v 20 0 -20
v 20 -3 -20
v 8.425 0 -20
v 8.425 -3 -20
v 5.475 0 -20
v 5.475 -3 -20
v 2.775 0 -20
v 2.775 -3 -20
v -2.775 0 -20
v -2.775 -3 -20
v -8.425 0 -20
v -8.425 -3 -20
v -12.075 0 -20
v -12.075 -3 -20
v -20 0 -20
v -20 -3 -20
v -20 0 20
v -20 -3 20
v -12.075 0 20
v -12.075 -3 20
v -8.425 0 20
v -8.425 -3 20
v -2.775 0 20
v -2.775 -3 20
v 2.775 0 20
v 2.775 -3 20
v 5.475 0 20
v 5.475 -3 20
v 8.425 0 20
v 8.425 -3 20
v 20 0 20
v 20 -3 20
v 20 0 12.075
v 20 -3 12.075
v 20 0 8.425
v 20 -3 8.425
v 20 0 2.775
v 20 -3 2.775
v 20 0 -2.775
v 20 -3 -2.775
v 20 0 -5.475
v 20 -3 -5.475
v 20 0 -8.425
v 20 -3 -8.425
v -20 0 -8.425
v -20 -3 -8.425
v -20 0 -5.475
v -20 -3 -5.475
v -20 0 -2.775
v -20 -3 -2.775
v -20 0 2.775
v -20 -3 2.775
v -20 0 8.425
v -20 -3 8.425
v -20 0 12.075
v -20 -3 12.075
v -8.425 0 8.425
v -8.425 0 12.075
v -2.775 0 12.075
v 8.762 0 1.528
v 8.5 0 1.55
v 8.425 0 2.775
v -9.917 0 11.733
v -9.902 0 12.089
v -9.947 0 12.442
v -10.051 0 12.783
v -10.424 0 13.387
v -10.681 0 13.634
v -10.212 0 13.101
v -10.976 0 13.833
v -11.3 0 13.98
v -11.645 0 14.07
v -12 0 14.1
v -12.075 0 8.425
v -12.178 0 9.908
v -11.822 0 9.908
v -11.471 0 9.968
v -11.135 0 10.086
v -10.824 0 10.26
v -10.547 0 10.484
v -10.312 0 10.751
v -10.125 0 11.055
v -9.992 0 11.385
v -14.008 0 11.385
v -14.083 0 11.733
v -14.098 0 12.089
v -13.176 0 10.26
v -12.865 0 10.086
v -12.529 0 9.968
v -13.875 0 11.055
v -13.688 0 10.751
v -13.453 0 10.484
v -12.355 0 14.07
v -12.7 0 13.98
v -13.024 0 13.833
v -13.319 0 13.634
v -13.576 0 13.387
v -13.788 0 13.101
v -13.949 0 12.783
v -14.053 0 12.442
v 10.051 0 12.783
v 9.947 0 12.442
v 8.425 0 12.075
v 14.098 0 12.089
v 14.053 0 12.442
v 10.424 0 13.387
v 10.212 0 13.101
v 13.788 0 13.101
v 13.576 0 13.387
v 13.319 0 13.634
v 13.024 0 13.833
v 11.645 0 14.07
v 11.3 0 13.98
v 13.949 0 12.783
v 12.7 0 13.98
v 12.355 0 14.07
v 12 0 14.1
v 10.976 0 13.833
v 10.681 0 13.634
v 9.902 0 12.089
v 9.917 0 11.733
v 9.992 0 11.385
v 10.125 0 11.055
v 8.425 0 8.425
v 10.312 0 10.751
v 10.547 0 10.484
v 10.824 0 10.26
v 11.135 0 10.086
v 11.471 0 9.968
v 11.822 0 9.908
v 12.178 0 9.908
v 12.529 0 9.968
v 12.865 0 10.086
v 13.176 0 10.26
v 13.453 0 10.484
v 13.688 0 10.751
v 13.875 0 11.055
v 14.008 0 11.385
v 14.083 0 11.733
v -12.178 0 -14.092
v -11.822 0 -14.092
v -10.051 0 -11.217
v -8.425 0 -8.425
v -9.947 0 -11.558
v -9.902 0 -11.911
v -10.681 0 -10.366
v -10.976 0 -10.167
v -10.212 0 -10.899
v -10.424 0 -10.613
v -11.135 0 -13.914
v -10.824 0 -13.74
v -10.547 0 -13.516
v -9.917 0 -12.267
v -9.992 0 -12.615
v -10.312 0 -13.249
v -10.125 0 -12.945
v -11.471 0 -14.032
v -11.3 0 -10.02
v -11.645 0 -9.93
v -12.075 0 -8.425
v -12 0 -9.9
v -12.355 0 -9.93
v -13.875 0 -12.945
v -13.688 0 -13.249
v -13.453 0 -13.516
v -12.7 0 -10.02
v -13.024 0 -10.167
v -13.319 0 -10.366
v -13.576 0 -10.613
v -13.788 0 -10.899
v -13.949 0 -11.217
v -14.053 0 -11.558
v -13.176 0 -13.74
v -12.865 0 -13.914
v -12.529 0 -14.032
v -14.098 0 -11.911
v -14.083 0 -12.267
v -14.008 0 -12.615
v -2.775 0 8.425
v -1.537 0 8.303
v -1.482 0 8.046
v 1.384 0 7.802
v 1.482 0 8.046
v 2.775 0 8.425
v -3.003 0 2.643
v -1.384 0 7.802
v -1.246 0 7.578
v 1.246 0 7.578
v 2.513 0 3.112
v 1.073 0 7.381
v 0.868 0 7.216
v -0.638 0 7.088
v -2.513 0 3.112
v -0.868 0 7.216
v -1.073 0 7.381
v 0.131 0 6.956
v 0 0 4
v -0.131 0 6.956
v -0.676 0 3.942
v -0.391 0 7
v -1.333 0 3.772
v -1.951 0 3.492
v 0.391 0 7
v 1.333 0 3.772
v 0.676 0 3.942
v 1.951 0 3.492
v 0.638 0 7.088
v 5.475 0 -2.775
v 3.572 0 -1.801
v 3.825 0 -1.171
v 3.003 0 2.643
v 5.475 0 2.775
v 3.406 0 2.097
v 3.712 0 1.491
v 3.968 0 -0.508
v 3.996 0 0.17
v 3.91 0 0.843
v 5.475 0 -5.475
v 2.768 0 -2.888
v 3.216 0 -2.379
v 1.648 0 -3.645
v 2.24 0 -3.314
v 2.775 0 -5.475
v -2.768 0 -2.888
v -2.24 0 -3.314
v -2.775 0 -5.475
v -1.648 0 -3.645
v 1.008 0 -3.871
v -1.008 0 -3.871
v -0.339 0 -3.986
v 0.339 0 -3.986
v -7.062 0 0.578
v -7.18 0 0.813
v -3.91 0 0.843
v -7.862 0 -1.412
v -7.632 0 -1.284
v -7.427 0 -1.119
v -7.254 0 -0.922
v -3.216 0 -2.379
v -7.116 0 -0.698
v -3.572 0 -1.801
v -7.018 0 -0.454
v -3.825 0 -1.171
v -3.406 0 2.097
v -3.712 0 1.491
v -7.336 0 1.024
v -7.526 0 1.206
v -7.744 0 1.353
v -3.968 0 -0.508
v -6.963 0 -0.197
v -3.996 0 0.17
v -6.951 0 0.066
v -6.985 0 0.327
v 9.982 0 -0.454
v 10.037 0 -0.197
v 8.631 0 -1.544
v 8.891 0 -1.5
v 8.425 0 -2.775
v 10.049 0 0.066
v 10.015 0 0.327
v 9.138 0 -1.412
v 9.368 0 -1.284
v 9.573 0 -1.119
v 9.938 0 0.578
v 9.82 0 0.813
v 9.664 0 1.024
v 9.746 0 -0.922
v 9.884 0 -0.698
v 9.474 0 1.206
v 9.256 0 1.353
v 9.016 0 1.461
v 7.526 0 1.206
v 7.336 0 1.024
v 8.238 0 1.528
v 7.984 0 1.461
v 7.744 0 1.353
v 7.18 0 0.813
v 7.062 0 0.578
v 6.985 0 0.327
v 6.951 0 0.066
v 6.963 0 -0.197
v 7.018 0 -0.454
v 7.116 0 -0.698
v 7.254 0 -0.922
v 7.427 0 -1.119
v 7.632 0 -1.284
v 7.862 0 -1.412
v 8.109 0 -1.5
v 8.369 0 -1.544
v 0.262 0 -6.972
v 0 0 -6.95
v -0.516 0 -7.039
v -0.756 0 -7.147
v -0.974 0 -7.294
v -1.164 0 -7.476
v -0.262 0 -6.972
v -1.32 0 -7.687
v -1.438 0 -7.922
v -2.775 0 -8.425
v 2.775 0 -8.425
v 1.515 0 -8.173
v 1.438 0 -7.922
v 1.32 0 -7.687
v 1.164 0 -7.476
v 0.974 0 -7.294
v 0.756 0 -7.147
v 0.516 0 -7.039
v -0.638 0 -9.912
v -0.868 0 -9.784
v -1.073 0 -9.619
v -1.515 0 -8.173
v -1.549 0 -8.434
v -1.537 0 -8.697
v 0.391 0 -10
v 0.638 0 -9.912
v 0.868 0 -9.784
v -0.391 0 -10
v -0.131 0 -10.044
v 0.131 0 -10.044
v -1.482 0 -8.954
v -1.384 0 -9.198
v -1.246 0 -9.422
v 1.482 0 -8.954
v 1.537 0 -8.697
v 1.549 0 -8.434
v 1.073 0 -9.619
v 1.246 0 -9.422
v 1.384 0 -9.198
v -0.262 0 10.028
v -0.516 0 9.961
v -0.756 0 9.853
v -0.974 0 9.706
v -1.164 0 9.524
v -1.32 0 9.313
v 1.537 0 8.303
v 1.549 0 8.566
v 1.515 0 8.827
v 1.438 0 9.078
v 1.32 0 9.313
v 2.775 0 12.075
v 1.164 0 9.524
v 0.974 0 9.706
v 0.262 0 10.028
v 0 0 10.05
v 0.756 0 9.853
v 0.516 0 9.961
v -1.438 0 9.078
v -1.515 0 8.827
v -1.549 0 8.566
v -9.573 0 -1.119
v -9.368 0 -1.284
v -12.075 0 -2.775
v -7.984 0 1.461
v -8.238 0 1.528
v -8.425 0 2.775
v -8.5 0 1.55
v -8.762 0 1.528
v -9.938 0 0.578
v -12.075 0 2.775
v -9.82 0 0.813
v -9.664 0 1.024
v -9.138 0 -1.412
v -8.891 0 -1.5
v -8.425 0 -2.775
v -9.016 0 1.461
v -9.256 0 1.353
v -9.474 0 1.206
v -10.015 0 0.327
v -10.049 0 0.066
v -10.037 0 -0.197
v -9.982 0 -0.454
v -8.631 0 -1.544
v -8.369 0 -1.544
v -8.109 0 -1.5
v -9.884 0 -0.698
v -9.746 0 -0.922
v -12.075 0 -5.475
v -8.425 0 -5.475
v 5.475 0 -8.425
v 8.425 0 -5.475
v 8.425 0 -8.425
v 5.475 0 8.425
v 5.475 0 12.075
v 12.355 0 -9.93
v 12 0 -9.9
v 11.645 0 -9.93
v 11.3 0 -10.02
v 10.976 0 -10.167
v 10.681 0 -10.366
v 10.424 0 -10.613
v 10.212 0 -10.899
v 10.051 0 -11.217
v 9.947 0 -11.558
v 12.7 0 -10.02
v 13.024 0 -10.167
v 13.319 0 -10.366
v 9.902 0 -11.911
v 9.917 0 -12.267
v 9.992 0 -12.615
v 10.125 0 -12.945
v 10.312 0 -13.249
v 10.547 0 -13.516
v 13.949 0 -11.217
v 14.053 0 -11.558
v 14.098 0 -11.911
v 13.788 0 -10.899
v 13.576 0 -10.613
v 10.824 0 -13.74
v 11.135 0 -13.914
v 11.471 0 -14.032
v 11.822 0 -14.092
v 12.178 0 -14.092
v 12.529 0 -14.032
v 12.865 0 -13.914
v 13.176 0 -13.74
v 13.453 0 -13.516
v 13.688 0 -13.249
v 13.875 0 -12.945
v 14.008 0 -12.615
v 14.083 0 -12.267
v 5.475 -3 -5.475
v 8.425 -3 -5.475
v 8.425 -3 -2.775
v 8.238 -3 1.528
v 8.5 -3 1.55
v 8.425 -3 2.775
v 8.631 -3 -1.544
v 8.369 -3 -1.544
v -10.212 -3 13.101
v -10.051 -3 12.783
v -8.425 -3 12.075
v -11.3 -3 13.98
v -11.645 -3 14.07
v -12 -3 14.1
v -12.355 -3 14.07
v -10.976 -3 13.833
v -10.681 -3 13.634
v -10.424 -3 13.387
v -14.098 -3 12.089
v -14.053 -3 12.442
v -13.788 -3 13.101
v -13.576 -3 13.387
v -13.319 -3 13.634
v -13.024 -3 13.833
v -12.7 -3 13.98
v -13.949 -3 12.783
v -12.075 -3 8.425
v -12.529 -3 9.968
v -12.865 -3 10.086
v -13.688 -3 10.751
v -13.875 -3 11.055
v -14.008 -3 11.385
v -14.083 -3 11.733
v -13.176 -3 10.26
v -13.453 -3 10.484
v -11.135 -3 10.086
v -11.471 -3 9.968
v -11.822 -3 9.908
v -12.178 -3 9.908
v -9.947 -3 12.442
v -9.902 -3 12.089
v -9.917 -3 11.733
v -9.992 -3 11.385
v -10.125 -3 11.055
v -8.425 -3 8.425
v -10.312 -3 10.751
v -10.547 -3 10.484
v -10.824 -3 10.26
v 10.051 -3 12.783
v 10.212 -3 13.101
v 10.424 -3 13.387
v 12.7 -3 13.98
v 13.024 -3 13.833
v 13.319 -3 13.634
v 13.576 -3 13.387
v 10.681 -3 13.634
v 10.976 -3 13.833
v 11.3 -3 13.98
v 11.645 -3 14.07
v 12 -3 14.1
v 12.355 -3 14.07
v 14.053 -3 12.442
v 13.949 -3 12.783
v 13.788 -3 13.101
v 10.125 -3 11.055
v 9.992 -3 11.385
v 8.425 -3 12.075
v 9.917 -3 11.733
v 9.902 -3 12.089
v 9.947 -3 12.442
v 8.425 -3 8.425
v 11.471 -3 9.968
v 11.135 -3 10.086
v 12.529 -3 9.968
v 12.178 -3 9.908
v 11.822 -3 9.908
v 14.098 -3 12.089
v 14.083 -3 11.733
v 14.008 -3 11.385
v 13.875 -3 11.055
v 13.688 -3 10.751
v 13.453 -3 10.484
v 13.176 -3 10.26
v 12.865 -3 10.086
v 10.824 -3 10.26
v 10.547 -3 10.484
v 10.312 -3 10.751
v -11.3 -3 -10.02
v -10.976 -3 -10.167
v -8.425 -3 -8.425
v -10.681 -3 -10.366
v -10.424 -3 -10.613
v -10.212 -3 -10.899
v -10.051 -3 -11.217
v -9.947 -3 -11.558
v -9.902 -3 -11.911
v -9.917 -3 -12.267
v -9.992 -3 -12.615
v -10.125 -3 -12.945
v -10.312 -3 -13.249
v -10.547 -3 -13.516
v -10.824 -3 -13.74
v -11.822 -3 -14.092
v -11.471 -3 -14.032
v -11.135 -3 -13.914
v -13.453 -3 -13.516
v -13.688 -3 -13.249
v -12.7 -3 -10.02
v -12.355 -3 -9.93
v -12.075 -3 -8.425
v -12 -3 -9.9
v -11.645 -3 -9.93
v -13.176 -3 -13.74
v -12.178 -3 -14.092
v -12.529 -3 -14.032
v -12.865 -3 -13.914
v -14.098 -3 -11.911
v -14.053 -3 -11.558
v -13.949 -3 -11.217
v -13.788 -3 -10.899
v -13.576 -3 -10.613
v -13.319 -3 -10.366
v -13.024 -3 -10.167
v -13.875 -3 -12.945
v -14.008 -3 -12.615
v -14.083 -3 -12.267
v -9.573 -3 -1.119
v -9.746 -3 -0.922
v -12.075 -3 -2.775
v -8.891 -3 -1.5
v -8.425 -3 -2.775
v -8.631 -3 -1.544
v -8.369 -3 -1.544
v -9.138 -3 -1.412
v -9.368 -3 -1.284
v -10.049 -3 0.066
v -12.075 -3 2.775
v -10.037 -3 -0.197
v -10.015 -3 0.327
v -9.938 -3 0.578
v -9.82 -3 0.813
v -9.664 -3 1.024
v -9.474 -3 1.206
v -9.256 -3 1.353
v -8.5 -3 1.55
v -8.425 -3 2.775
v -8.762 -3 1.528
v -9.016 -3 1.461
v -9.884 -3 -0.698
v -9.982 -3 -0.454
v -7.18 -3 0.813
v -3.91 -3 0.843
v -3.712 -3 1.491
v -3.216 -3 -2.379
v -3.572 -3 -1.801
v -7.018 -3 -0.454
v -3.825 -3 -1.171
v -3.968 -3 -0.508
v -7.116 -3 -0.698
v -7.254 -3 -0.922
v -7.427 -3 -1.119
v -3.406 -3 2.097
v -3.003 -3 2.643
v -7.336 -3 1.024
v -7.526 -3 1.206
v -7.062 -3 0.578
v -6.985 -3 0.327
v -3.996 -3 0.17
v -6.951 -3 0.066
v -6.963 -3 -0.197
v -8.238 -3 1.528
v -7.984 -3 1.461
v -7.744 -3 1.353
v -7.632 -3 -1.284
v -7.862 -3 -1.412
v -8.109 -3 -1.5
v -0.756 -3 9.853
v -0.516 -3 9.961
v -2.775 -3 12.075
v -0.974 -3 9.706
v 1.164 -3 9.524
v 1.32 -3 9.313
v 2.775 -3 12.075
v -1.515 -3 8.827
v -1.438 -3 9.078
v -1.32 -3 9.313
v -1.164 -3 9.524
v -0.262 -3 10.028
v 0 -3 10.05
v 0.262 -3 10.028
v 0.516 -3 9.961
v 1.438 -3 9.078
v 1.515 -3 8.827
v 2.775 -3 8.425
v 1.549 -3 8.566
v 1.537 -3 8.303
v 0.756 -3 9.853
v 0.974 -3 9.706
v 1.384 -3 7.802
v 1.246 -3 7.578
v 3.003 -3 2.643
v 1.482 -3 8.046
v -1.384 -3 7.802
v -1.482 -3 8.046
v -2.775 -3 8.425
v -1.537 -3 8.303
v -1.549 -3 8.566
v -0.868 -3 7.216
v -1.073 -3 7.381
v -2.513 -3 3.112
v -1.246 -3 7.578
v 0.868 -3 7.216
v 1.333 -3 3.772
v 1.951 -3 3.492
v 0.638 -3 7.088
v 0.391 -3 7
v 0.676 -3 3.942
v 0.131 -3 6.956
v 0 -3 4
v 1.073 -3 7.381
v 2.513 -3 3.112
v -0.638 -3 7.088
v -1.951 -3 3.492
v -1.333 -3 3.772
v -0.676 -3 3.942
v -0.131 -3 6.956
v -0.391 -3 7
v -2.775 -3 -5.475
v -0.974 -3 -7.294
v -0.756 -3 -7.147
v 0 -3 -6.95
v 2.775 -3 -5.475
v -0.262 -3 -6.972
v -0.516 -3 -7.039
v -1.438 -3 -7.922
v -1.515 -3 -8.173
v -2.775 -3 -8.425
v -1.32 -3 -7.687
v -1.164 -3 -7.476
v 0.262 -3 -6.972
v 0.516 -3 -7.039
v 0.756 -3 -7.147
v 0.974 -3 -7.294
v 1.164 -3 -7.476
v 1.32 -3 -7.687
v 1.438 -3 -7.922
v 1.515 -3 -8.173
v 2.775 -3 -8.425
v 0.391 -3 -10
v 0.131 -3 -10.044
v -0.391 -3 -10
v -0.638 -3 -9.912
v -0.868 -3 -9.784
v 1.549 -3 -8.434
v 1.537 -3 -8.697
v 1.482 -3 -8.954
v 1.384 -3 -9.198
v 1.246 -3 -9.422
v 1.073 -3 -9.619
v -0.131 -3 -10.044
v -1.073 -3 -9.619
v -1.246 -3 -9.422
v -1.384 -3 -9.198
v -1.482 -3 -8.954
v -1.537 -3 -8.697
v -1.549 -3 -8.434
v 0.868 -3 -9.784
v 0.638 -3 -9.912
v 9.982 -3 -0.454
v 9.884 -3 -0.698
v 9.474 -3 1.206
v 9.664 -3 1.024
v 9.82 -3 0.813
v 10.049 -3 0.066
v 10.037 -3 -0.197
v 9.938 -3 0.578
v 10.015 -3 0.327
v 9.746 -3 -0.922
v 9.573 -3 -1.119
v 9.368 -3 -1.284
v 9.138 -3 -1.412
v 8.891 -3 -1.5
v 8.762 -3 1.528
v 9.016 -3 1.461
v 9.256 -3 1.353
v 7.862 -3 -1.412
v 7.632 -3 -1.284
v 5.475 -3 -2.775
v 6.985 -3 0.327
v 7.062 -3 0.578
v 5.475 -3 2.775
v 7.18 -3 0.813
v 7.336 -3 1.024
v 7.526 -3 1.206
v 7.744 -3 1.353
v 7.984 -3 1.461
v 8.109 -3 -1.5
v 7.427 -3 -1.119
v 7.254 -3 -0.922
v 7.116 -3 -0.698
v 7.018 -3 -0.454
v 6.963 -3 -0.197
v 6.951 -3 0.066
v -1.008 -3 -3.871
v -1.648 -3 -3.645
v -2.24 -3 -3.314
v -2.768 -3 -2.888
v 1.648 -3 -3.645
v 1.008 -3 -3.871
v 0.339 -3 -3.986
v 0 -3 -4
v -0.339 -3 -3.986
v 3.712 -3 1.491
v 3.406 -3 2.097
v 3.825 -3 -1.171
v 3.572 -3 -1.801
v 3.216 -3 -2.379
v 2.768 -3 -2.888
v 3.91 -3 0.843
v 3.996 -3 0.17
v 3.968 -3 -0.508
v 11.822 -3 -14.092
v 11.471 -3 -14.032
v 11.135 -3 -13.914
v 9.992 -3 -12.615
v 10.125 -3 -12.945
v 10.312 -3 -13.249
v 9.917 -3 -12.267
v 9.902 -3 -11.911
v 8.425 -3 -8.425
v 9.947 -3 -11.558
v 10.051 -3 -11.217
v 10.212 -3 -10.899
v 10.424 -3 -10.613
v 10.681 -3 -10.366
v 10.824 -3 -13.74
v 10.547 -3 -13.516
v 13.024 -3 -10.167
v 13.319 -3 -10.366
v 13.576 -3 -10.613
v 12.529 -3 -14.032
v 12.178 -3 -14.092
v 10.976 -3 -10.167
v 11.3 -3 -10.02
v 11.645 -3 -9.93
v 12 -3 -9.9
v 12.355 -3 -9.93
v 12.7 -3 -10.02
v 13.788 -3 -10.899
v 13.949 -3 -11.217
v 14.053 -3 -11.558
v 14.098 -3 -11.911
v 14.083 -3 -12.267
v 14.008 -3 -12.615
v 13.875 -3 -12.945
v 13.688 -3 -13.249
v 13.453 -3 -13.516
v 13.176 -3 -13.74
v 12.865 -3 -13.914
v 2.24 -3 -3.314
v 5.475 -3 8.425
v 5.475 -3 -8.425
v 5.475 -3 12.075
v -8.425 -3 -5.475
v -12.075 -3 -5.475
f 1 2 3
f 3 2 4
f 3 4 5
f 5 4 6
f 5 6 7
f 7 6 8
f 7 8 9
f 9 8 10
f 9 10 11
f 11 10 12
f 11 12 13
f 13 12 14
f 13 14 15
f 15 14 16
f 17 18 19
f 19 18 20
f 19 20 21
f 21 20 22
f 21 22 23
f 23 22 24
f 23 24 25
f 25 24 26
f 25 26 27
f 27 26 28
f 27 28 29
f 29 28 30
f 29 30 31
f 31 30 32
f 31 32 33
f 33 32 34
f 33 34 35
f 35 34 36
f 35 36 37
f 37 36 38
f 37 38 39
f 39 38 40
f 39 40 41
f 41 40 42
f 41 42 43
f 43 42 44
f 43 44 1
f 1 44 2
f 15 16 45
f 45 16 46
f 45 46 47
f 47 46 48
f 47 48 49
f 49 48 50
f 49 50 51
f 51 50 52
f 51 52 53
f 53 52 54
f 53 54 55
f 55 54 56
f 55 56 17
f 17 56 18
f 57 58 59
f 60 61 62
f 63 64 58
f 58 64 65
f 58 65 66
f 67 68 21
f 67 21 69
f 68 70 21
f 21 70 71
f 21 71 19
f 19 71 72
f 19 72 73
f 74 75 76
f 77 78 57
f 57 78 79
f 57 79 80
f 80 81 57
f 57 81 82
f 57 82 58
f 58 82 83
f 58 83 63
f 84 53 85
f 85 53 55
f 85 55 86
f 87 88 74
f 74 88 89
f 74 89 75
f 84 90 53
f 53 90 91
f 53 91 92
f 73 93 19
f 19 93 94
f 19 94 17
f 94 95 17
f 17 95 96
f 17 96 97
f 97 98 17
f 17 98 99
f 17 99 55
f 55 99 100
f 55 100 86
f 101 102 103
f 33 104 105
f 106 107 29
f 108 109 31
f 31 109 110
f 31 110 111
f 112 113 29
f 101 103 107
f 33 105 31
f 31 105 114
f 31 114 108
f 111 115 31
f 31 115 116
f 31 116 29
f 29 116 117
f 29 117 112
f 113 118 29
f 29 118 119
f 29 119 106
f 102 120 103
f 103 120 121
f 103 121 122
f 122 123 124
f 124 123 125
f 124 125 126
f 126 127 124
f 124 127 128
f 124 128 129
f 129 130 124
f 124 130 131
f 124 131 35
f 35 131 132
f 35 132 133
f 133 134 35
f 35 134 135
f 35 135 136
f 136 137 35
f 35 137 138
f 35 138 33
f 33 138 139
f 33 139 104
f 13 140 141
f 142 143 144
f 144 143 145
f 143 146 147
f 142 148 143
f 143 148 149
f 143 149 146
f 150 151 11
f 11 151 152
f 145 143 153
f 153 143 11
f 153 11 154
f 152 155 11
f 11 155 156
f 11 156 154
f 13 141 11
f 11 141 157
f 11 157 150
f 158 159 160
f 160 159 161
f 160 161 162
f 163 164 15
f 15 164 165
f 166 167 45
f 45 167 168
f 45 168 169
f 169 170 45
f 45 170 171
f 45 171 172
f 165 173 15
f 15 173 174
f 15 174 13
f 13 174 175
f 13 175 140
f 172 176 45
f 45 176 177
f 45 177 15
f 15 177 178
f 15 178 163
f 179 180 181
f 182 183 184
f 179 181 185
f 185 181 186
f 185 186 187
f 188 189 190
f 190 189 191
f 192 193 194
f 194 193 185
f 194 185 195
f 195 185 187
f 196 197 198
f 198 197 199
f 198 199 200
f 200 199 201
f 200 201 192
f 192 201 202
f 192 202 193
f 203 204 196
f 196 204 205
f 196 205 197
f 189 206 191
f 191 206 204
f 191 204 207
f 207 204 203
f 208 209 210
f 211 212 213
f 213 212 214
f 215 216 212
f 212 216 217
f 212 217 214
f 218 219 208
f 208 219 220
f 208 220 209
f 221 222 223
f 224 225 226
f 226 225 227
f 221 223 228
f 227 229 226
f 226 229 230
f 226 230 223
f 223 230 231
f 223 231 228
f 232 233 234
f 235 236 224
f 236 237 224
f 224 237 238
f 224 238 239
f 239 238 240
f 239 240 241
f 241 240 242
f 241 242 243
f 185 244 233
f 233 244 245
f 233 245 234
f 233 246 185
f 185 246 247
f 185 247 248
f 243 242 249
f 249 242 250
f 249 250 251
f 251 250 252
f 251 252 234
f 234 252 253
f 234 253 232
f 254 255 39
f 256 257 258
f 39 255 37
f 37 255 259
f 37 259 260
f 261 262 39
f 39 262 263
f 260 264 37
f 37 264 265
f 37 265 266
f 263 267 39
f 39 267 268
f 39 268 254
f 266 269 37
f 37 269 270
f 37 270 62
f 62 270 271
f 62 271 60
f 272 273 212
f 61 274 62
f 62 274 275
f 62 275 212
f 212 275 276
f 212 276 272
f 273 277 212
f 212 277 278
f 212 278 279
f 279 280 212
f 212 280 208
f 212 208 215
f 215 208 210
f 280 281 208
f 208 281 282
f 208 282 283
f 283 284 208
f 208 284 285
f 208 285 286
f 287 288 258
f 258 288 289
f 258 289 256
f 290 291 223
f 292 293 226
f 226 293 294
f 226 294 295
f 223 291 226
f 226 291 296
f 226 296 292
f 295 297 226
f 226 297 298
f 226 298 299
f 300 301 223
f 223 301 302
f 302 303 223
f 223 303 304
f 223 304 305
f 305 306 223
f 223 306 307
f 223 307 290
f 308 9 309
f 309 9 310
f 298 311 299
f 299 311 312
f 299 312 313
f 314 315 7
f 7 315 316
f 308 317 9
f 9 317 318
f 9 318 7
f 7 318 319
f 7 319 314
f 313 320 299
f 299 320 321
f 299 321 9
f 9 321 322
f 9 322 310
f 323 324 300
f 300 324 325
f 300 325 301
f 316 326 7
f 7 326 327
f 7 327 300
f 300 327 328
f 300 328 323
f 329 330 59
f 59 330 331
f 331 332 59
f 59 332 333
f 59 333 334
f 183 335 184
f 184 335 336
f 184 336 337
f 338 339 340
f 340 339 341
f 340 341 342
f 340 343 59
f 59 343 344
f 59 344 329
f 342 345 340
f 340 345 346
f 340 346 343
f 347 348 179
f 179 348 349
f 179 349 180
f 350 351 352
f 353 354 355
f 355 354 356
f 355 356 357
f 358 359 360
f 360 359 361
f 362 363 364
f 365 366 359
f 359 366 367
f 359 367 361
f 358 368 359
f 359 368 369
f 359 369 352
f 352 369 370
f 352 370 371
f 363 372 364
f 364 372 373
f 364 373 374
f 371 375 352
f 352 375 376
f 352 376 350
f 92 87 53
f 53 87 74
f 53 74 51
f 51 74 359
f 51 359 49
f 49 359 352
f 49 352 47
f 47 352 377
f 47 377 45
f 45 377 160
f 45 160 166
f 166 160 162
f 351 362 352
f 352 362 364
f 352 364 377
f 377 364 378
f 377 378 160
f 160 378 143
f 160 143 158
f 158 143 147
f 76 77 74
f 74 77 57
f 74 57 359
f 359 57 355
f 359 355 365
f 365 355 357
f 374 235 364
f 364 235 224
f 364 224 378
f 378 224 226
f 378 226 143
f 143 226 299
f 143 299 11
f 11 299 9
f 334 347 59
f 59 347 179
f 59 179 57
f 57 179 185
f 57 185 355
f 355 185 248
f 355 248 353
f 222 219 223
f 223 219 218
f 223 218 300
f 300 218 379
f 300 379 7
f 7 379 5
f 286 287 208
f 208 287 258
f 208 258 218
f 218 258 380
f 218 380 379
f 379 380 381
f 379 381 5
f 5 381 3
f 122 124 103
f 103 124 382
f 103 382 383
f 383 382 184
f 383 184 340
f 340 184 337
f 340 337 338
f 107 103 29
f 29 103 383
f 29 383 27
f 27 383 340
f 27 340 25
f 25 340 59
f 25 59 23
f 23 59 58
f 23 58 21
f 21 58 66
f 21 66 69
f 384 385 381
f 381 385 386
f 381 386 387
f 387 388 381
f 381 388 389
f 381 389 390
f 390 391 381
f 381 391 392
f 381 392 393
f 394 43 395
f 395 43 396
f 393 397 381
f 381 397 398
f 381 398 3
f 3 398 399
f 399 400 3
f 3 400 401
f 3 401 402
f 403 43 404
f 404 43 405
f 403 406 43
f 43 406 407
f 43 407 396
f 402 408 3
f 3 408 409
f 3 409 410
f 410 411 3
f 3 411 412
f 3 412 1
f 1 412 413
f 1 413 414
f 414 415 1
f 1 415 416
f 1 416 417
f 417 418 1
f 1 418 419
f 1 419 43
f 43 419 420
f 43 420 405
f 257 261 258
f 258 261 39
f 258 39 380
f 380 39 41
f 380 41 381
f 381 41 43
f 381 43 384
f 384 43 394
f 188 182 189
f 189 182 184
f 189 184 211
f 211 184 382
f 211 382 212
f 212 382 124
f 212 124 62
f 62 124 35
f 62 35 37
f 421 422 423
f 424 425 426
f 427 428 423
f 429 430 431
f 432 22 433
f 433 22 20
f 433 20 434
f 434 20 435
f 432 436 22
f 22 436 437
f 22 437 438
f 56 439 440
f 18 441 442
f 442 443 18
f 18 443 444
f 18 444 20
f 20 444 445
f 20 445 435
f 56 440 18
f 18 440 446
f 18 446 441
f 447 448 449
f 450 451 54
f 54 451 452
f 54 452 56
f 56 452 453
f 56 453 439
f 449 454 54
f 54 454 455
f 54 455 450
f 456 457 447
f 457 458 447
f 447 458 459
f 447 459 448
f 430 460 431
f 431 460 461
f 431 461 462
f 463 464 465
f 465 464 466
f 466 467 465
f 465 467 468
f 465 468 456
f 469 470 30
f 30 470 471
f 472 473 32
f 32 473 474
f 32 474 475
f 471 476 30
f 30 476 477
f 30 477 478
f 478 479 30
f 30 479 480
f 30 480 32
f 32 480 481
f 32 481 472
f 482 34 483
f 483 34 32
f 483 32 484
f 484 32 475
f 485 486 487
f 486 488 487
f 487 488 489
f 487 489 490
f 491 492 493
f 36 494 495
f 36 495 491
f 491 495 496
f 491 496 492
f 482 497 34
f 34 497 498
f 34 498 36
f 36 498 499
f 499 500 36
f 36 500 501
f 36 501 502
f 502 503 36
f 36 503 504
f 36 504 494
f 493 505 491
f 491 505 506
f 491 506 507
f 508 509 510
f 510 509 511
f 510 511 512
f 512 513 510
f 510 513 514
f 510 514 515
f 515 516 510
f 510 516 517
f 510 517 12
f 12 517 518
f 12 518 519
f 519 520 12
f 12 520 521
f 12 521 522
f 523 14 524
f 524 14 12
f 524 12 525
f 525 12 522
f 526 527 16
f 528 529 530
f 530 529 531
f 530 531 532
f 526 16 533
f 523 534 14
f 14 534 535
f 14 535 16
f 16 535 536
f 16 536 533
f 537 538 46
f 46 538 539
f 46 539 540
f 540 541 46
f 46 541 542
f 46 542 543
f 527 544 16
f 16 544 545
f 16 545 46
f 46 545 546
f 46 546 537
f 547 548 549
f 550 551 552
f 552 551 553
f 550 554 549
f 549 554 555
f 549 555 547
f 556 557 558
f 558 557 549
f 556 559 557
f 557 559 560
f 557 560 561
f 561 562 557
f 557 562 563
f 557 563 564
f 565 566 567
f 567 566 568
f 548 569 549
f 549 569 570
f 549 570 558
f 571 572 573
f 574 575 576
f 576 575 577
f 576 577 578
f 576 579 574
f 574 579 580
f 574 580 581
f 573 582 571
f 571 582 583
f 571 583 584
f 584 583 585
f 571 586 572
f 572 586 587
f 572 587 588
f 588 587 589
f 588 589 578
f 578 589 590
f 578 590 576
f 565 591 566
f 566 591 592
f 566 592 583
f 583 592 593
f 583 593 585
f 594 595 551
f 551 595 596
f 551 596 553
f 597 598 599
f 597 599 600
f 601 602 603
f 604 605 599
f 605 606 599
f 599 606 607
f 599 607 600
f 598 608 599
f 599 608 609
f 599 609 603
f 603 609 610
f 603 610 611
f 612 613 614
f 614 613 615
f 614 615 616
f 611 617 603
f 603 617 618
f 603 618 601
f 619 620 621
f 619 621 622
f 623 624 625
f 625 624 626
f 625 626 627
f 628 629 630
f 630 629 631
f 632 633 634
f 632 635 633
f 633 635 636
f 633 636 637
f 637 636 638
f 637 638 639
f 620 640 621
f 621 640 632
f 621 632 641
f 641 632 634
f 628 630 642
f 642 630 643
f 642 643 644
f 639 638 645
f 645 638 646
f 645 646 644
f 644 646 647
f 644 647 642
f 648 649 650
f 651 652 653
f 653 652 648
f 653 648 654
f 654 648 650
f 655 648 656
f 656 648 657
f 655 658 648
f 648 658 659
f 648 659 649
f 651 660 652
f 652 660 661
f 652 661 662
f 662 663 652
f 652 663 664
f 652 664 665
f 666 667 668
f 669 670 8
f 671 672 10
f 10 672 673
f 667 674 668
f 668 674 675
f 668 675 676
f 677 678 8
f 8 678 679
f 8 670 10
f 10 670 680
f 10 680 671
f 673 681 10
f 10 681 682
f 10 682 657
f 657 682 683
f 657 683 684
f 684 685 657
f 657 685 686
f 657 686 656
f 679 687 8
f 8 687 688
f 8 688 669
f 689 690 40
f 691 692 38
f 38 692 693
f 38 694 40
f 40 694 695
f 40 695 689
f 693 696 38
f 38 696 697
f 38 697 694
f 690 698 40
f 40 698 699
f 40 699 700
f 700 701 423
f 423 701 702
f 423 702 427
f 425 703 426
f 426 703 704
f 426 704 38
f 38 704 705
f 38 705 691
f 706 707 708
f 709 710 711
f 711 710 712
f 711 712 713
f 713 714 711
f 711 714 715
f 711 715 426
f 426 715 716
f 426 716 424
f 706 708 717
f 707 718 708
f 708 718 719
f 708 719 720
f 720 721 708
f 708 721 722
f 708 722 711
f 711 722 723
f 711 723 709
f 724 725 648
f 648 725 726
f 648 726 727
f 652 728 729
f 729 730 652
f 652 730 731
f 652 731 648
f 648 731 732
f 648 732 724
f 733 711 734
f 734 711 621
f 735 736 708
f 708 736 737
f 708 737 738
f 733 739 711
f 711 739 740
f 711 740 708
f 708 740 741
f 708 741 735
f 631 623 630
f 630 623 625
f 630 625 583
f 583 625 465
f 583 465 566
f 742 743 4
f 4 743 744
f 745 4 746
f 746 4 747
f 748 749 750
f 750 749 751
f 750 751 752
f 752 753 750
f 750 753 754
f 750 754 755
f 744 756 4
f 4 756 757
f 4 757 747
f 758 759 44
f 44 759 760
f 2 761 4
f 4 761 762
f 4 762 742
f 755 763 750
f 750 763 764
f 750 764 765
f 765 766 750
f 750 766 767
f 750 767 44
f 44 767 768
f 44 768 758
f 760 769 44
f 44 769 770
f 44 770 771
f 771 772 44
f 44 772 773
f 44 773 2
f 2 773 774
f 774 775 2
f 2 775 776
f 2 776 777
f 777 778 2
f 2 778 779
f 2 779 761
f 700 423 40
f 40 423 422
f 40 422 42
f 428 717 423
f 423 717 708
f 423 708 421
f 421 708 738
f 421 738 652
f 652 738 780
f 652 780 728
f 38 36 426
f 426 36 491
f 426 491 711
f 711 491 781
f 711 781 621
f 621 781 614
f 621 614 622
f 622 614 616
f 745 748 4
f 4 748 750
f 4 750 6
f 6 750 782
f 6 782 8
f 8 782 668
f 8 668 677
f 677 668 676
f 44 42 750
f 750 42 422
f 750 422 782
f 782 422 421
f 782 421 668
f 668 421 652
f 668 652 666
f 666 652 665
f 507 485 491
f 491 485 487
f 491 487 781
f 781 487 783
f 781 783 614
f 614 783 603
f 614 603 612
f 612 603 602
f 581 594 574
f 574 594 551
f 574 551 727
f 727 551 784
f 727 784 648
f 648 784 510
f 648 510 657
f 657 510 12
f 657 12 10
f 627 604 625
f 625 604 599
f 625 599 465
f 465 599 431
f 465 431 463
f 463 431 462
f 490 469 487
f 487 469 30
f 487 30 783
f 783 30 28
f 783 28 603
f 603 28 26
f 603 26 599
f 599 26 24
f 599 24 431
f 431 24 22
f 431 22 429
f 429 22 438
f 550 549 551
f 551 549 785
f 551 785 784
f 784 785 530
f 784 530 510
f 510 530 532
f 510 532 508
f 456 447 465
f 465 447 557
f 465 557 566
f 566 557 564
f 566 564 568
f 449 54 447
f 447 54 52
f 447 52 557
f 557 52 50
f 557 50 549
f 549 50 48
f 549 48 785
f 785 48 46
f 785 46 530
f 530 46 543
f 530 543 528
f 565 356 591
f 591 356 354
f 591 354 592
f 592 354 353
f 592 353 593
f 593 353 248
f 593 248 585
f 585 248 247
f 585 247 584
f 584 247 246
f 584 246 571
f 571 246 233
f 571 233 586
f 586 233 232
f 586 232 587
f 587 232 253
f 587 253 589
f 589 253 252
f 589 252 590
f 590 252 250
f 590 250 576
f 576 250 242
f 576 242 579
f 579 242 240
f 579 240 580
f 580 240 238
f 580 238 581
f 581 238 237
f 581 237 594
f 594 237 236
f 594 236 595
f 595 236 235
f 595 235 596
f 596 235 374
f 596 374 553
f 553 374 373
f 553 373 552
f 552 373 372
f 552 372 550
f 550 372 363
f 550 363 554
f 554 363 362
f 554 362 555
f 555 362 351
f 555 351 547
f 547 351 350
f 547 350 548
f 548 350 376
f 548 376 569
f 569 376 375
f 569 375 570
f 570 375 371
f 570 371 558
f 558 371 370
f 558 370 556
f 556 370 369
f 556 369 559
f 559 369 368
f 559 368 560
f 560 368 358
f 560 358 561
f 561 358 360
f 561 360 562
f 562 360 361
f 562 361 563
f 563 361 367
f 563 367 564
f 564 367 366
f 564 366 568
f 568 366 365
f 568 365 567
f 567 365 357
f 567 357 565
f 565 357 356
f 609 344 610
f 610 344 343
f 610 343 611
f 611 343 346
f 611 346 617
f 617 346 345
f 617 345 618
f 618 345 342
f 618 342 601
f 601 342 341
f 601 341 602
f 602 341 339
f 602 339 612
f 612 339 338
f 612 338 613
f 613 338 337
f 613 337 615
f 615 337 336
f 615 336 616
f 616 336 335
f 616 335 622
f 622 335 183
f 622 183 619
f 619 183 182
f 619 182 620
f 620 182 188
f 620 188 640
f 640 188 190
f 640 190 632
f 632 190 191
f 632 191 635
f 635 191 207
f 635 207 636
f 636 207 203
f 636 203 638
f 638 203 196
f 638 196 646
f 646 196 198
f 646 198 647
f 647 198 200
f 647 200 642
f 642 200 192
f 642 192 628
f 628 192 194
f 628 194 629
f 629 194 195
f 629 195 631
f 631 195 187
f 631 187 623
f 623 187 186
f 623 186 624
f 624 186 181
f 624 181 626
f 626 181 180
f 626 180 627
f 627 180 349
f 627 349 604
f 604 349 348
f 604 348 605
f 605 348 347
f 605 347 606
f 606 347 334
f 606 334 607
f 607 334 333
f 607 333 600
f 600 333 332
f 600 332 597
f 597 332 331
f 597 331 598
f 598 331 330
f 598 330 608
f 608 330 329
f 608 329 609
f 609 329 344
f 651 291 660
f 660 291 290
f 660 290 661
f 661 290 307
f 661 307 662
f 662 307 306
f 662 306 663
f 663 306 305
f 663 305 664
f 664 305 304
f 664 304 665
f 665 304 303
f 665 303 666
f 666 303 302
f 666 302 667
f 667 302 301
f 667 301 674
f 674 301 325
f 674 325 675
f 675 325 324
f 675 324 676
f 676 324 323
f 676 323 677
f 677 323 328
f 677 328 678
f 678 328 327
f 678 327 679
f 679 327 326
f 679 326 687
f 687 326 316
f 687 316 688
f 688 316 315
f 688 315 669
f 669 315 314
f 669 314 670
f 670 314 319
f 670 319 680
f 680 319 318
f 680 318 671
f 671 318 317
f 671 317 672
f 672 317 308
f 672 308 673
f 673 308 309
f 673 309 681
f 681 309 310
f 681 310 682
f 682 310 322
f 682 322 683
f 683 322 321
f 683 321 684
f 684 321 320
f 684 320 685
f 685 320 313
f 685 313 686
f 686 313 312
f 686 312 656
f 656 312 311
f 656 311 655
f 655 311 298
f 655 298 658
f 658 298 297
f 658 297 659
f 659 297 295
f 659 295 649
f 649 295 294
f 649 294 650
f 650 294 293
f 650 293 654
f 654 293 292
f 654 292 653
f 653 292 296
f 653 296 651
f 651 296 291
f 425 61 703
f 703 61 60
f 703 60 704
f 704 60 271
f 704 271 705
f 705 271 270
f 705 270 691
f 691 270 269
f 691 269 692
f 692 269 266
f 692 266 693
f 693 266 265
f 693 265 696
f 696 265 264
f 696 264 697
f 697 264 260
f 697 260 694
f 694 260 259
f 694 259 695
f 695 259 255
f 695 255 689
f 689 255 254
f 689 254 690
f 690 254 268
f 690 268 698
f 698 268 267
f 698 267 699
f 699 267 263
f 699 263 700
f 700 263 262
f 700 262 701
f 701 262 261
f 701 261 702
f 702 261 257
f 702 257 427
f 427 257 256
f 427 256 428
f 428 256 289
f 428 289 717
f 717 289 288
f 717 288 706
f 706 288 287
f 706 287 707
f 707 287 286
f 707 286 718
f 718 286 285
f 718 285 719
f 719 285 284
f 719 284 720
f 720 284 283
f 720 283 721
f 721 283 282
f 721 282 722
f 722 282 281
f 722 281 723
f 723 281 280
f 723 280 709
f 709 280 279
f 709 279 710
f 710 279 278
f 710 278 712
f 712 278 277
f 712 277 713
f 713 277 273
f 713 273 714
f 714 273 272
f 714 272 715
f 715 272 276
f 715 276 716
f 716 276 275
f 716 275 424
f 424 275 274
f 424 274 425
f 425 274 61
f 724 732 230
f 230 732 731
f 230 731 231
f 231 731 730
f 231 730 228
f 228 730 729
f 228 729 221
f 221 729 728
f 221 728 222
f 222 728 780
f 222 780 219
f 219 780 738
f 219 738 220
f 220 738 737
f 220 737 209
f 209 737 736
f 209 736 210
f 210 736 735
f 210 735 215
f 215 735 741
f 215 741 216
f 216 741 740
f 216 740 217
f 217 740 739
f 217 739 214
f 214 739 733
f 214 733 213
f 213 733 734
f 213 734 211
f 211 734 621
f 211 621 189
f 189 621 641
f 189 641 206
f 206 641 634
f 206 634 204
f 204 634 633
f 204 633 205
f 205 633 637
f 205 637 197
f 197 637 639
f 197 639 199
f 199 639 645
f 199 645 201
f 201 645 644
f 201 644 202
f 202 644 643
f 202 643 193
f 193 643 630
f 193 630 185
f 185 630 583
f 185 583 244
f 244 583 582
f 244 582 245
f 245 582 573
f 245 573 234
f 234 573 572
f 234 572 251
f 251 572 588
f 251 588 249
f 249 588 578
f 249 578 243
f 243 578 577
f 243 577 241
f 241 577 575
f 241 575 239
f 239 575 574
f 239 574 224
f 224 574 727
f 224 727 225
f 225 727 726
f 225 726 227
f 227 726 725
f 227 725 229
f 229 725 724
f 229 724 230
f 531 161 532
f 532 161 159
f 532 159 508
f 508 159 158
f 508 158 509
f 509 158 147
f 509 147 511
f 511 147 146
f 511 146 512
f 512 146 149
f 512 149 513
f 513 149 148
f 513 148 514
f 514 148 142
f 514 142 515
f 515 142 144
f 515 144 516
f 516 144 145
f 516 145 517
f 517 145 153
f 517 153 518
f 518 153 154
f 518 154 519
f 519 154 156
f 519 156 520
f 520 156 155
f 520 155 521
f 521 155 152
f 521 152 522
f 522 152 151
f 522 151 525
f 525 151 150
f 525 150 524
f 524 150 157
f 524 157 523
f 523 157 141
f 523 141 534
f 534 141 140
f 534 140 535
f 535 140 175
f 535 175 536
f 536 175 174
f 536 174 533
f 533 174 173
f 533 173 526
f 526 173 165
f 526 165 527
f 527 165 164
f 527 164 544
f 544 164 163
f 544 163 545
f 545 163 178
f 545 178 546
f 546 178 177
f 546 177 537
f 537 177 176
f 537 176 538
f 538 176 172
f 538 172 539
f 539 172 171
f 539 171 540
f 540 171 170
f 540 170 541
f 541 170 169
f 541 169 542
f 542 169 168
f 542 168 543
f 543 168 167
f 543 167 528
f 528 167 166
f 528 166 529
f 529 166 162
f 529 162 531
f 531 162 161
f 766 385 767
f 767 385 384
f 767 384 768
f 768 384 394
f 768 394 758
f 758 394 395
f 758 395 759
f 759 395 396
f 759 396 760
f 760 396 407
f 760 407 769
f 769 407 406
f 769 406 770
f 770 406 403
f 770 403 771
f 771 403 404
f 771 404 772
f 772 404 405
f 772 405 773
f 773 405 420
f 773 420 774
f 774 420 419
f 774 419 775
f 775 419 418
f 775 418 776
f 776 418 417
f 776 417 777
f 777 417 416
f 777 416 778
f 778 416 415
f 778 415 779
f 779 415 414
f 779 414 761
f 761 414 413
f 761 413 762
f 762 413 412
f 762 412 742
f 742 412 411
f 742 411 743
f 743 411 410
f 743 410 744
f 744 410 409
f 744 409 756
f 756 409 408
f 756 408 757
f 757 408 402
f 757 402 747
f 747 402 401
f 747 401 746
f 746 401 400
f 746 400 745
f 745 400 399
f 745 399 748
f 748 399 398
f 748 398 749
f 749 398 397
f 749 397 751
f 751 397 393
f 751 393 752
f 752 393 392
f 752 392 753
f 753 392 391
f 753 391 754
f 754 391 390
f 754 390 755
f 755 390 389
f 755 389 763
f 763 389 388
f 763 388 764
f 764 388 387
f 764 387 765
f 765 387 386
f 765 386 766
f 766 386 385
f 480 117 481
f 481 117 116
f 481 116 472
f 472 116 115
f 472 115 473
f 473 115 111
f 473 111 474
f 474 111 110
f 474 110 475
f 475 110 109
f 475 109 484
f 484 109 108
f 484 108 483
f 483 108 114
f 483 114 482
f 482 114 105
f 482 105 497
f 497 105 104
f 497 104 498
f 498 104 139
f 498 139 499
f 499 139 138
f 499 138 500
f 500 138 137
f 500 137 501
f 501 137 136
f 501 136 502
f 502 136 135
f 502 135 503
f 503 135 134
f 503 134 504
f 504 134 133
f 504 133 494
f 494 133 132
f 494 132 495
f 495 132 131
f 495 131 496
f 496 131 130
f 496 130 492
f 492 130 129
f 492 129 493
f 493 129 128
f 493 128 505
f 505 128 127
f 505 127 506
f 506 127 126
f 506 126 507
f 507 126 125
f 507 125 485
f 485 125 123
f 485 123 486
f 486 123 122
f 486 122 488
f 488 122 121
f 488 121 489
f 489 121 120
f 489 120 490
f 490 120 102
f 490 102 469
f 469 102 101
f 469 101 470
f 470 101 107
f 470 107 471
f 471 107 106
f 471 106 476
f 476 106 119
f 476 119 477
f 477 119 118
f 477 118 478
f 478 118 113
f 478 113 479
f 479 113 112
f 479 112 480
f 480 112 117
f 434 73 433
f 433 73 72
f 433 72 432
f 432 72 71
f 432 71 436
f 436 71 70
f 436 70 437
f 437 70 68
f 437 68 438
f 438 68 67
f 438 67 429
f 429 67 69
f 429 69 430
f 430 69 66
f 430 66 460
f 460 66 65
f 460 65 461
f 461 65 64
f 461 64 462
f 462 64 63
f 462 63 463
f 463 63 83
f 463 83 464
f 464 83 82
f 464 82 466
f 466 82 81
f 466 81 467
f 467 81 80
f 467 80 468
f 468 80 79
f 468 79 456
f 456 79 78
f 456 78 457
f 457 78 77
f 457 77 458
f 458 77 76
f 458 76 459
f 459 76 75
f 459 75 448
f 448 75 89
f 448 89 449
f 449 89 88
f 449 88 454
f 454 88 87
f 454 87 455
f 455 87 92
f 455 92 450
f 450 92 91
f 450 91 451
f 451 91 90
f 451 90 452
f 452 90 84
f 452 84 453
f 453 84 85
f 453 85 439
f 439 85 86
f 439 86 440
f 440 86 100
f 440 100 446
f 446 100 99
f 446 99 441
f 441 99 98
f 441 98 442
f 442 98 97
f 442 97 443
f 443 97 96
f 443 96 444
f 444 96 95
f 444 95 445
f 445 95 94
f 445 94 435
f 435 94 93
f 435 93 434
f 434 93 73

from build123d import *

# Parameters (mm, degrees)
SKETCH_1_W                = 40
SKETCH_1_H                = 40
SKETCH_1_R                = 1.55
EXTRUDE_2_DEPTH           = 3
SKETCH_1_6_R              = 4
CUT_EXTRUDE_1_DEPTH       = 1.5
SKETCH_2_W                = 3
SKETCH_2_H                = 3
EXTRUDE_7_DEPTH           = 45
SKETCH_5_W                = 40
SKETCH_5_H                = 3
EXTRUDE_8_DEPTH           = 40
CUT_EXTRUDE_2_DEPTH       = 4
CUT_EXTRUDE_START         = -4
SKETCH_7_R                = 4
CUT_EXTRUDE_3_DEPTH       = 4
SKETCH_8_R                = 5
CUT_EXTRUDE_4_DEPTH       = 4
SKETCH_9_R                = 2.5
CUT_EXTRUDE_5_DEPTH       = 4
SKETCH_10_W               = 1.5
SKETCH_10_H               = 34
SKETCH_10_W_2             = 34
SKETCH_10_H_2             = 1.5
EXTRUDE_10_DEPTH          = 45
CUT_EXTRUDE_12_DEPTH      = 63.507999488
CUT_EXTRUDE_12_DEPTH_BACK = 4
CUT_EXTRUDE_13_DEPTH      = 4
CUT_EXTRUDE_13_DEPTH_BACK = 64.442887702
CUT_EXTRUDE_15_DEPTH      = 10
CUT_EXTRUDE_15_DEPTH_BACK = 64.442887702
SKETCH_24_5_R             = 1.85
SKETCH_24_5_R_2           = 5.5
CUT_EXTRUDE_16_DEPTH      = 10
CUT_EXTRUDE_16_DEPTH_BACK = 64.442887702
SKETCH_25_R               = 5.5
SKETCH_25_R_2             = 1.85
SKETCH_26_W               = 40
SKETCH_26_H               = 40
CUT_EXTRUDE_17_DEPTH      = 54.150729064
EXTRUDE_START             = -3
SKETCH_27_R               = 5
SKETCH_27_R_2             = 2.1
EXTRUDE_12_DEPTH          = 3


with BuildPart() as part:
    # 草图1 → 凸台-拉伸2 (new body)
    with BuildSketch(Plane(origin=(0, 0, 0), x_dir=(1, 0, 0), z_dir=(0, 1, 0))):
        Rectangle(SKETCH_1_W, SKETCH_1_H)
        with Locations((0, 8.5)):
            Circle(SKETCH_1_R, mode=Mode.SUBTRACT)
        with Locations((8.5, 0)):
            Circle(SKETCH_1_R, mode=Mode.SUBTRACT)
        with Locations((0, -8.5)):
            Circle(SKETCH_1_R, mode=Mode.SUBTRACT)
        with Locations((-8.5, 0)):
            Circle(SKETCH_1_R, mode=Mode.SUBTRACT)
    extrude(amount=-EXTRUDE_2_DEPTH)

    # 草图1<6> → 切除-拉伸1 (cut)
    with BuildSketch(Plane(origin=(0, 0, 0), x_dir=(1, 0, 0), z_dir=(0, 1, 0))):
        Circle(SKETCH_1_6_R)
    extrude(amount=-CUT_EXTRUDE_1_DEPTH, mode=Mode.SUBTRACT)

    # 草图2 → 凸台-拉伸7 (add)
    with BuildSketch(Plane(origin=(0, 0, 0), x_dir=(1, 0, 0), z_dir=(0, 1, 0))):
        with Locations((-18.5, -18.5)):
            Rectangle(SKETCH_2_W, SKETCH_2_H)
        with Locations((18.5, -18.5)):
            Rectangle(SKETCH_2_W, SKETCH_2_H)
        with Locations((-18.5, 18.5)):
            Rectangle(SKETCH_2_W, SKETCH_2_H)
        with Locations((18.5, 18.5)):
            Rectangle(SKETCH_2_W, SKETCH_2_H)
    extrude(amount=EXTRUDE_7_DEPTH)

    # 草图5 → 凸台-拉伸8 (add)
    with BuildSketch(Plane.ZY.offset(20)):
        with Locations((0, 43.5)):
            Rectangle(SKETCH_5_W, SKETCH_5_H)
    extrude(amount=-EXTRUDE_8_DEPTH)

    # 草图6 → 切除-拉伸2 (cut)
    with BuildSketch(Plane(origin=(0, 45, 0), x_dir=(1, 0, 0), z_dir=(0, 1, 0))):
        with BuildLine():
            ThreePointArc((12.5, 0), (-8.838834765, 8.838834765), (0, -12.5))
            ThreePointArc((0, -12.5), (8.838834765, -8.838834765), (12.5, 0))
        make_face()
    extrude(amount=-CUT_EXTRUDE_2_DEPTH, mode=Mode.SUBTRACT)

    # 草图7 → 切除-拉伸3 (cut)
    with BuildSketch(Plane.XZ.offset(3).offset(CUT_EXTRUDE_START)):
        Circle(SKETCH_7_R)
    extrude(amount=CUT_EXTRUDE_3_DEPTH, mode=Mode.SUBTRACT)

    # 草图8 → 切除-拉伸4 (cut)
    with BuildSketch(Plane.XZ.offset(3)):
        with Locations((-12, 12)):
            Circle(SKETCH_8_R)
        with Locations((12, 12)):
            Circle(SKETCH_8_R)
        with Locations((12, -12)):
            Circle(SKETCH_8_R)
        with Locations((-12, -12)):
            Circle(SKETCH_8_R)
    extrude(amount=-CUT_EXTRUDE_4_DEPTH, mode=Mode.SUBTRACT)

    # 草图9 → 切除-拉伸5 (cut)
    with BuildSketch(Plane(origin=(0, 45, 0), x_dir=(1, 0, 0), z_dir=(0, 1, 0))):
        with Locations((-12.727922061, 12.727922061)):
            Circle(SKETCH_9_R)
        with Locations((12.727922061, 12.727922061)):
            Circle(SKETCH_9_R)
        with Locations((12.727922061, -12.727922061)):
            Circle(SKETCH_9_R)
        with Locations((-12.727922061, -12.727922061)):
            Circle(SKETCH_9_R)
    extrude(amount=-CUT_EXTRUDE_5_DEPTH, mode=Mode.SUBTRACT)

    # 草图10 → 凸台-拉伸10 (add)
    with BuildSketch(Plane(origin=(0, 0, 0), x_dir=(1, 0, 0), z_dir=(0, 1, 0))):
        with Locations((19.25, 0)):
            Rectangle(SKETCH_10_W, SKETCH_10_H)
        with Locations((0, -19.25)):
            Rectangle(SKETCH_10_W_2, SKETCH_10_H_2)
        with Locations((-19.25, 0)):
            Rectangle(SKETCH_10_W, SKETCH_10_H)
        with Locations((0, 19.25)):
            Rectangle(SKETCH_10_W_2, SKETCH_10_H_2)
    extrude(amount=EXTRUDE_10_DEPTH)

    # 草图20 → 切除-拉伸12 (cut, two sides: drawn at the far end of the back side and taken through both)
    with BuildSketch(Plane(origin=(0, 0, 18.5), x_dir=(-1, 0, 0), z_dir=(0, 0, -1)).offset(-CUT_EXTRUDE_12_DEPTH_BACK)):
        with BuildLine():
            Line((-2.45, 36.5), (-2.45, 5.5))
            ThreePointArc((-2.45, 5.5), (0, 3.05), (2.45, 5.5))
            Line((2.45, 5.5), (2.45, 36.5))
            ThreePointArc((2.45, 36.5), (0, 38.95), (-2.45, 36.5))
        make_face()
    extrude(amount=CUT_EXTRUDE_12_DEPTH + CUT_EXTRUDE_12_DEPTH_BACK, mode=Mode.SUBTRACT)

    # 草图24 → 切除-拉伸13 (cut, two sides: drawn at the far end of the back side and taken through both)
    with BuildSketch(Plane(origin=(20, 0, 0), x_dir=(0, 0, -1), z_dir=(1, 0, 0)).offset(-CUT_EXTRUDE_13_DEPTH_BACK)):
        with BuildLine():
            Line((-2.45, 36.5), (-2.45, 5.5))
            ThreePointArc((-2.45, 5.5), (0, 3.05), (2.45, 5.5))
            Line((2.45, 5.5), (2.45, 36.5))
            ThreePointArc((2.45, 36.5), (0, 38.95), (-2.45, 36.5))
        make_face()
    extrude(amount=CUT_EXTRUDE_13_DEPTH + CUT_EXTRUDE_13_DEPTH_BACK, mode=Mode.SUBTRACT)

    # 草图24<5> → 切除-拉伸15 (cut, two sides: drawn at the far end of the back side and taken through both)
    with BuildSketch(Plane(origin=(20, 0, 0), x_dir=(0, 0, -1), z_dir=(1, 0, 0)).offset(-CUT_EXTRUDE_15_DEPTH_BACK)):
        with Locations((-11.45, 35)):
            Circle(SKETCH_24_5_R)
        with Locations((-11.45, 7)):
            Circle(SKETCH_24_5_R)
        with Locations((11.45, 7)):
            Circle(SKETCH_24_5_R)
        with Locations((11.45, 35)):
            Circle(SKETCH_24_5_R)
        with Locations((-11.35, 21)):
            Circle(SKETCH_24_5_R_2)
        with Locations((11.35, 21)):
            Circle(SKETCH_24_5_R_2)
    extrude(amount=CUT_EXTRUDE_15_DEPTH + CUT_EXTRUDE_15_DEPTH_BACK, mode=Mode.SUBTRACT)

    # 草图25 → 切除-拉伸16 (cut, two sides: drawn at the far end of the back side and taken through both)
    with BuildSketch(Plane(origin=(0, 0, -20), x_dir=(-1, 0, 0), z_dir=(0, 0, -1)).offset(-CUT_EXTRUDE_16_DEPTH_BACK)):
        with Locations((-11.45, 21)):
            Circle(SKETCH_25_R)
        with Locations((-11.45, 35)):
            Circle(SKETCH_25_R_2)
        with Locations((11.45, 35)):
            Circle(SKETCH_25_R_2)
        with Locations((11.45, 7)):
            Circle(SKETCH_25_R_2)
        with Locations((-11.45, 7)):
            Circle(SKETCH_25_R_2)
        with Locations((11.45, 21)):
            Circle(SKETCH_25_R)
    extrude(amount=CUT_EXTRUDE_16_DEPTH + CUT_EXTRUDE_16_DEPTH_BACK, mode=Mode.SUBTRACT)

    # 草图26 → 切除-拉伸17 (cut, through all)
    with BuildSketch(Plane(origin=(0, 0, 0), x_dir=(1, 0, 0), z_dir=(0, 1, 0))):
        Rectangle(SKETCH_26_W, SKETCH_26_H)
    extrude(amount=CUT_EXTRUDE_17_DEPTH, mode=Mode.SUBTRACT)

    # 草图27 → 凸台-拉伸12 (add)
    # profile 1 of 4: a face of its own
    with BuildSketch(Plane(origin=(0, 0, 0), x_dir=(1, 0, 0), z_dir=(0, 1, 0)).offset(EXTRUDE_START)):
        with Locations((-12, 12)):
            Circle(SKETCH_27_R)
        with Locations((-12, 12)):
            Circle(SKETCH_27_R_2, mode=Mode.SUBTRACT)
    # profile 2 of 4: a face of its own
    with BuildSketch(Plane(origin=(0, 0, 0), x_dir=(1, 0, 0), z_dir=(0, 1, 0)).offset(EXTRUDE_START)):
        with Locations((12, 12)):
            Circle(SKETCH_27_R)
        with Locations((12, 12)):
            Circle(SKETCH_27_R_2, mode=Mode.SUBTRACT)
    # profile 3 of 4: a face of its own
    with BuildSketch(Plane(origin=(0, 0, 0), x_dir=(1, 0, 0), z_dir=(0, 1, 0)).offset(EXTRUDE_START)):
        with Locations((-12, -12)):
            Circle(SKETCH_27_R)
        with Locations((-12, -12)):
            Circle(SKETCH_27_R_2, mode=Mode.SUBTRACT)
    # profile 4 of 4: a face of its own
    with BuildSketch(Plane(origin=(0, 0, 0), x_dir=(1, 0, 0), z_dir=(0, 1, 0)).offset(EXTRUDE_START)):
        with Locations((12, -12)):
            Circle(SKETCH_27_R)
        with Locations((12, -12)):
            Circle(SKETCH_27_R_2, mode=Mode.SUBTRACT)
    extrude(amount=EXTRUDE_12_DEPTH)


solid = part.part
